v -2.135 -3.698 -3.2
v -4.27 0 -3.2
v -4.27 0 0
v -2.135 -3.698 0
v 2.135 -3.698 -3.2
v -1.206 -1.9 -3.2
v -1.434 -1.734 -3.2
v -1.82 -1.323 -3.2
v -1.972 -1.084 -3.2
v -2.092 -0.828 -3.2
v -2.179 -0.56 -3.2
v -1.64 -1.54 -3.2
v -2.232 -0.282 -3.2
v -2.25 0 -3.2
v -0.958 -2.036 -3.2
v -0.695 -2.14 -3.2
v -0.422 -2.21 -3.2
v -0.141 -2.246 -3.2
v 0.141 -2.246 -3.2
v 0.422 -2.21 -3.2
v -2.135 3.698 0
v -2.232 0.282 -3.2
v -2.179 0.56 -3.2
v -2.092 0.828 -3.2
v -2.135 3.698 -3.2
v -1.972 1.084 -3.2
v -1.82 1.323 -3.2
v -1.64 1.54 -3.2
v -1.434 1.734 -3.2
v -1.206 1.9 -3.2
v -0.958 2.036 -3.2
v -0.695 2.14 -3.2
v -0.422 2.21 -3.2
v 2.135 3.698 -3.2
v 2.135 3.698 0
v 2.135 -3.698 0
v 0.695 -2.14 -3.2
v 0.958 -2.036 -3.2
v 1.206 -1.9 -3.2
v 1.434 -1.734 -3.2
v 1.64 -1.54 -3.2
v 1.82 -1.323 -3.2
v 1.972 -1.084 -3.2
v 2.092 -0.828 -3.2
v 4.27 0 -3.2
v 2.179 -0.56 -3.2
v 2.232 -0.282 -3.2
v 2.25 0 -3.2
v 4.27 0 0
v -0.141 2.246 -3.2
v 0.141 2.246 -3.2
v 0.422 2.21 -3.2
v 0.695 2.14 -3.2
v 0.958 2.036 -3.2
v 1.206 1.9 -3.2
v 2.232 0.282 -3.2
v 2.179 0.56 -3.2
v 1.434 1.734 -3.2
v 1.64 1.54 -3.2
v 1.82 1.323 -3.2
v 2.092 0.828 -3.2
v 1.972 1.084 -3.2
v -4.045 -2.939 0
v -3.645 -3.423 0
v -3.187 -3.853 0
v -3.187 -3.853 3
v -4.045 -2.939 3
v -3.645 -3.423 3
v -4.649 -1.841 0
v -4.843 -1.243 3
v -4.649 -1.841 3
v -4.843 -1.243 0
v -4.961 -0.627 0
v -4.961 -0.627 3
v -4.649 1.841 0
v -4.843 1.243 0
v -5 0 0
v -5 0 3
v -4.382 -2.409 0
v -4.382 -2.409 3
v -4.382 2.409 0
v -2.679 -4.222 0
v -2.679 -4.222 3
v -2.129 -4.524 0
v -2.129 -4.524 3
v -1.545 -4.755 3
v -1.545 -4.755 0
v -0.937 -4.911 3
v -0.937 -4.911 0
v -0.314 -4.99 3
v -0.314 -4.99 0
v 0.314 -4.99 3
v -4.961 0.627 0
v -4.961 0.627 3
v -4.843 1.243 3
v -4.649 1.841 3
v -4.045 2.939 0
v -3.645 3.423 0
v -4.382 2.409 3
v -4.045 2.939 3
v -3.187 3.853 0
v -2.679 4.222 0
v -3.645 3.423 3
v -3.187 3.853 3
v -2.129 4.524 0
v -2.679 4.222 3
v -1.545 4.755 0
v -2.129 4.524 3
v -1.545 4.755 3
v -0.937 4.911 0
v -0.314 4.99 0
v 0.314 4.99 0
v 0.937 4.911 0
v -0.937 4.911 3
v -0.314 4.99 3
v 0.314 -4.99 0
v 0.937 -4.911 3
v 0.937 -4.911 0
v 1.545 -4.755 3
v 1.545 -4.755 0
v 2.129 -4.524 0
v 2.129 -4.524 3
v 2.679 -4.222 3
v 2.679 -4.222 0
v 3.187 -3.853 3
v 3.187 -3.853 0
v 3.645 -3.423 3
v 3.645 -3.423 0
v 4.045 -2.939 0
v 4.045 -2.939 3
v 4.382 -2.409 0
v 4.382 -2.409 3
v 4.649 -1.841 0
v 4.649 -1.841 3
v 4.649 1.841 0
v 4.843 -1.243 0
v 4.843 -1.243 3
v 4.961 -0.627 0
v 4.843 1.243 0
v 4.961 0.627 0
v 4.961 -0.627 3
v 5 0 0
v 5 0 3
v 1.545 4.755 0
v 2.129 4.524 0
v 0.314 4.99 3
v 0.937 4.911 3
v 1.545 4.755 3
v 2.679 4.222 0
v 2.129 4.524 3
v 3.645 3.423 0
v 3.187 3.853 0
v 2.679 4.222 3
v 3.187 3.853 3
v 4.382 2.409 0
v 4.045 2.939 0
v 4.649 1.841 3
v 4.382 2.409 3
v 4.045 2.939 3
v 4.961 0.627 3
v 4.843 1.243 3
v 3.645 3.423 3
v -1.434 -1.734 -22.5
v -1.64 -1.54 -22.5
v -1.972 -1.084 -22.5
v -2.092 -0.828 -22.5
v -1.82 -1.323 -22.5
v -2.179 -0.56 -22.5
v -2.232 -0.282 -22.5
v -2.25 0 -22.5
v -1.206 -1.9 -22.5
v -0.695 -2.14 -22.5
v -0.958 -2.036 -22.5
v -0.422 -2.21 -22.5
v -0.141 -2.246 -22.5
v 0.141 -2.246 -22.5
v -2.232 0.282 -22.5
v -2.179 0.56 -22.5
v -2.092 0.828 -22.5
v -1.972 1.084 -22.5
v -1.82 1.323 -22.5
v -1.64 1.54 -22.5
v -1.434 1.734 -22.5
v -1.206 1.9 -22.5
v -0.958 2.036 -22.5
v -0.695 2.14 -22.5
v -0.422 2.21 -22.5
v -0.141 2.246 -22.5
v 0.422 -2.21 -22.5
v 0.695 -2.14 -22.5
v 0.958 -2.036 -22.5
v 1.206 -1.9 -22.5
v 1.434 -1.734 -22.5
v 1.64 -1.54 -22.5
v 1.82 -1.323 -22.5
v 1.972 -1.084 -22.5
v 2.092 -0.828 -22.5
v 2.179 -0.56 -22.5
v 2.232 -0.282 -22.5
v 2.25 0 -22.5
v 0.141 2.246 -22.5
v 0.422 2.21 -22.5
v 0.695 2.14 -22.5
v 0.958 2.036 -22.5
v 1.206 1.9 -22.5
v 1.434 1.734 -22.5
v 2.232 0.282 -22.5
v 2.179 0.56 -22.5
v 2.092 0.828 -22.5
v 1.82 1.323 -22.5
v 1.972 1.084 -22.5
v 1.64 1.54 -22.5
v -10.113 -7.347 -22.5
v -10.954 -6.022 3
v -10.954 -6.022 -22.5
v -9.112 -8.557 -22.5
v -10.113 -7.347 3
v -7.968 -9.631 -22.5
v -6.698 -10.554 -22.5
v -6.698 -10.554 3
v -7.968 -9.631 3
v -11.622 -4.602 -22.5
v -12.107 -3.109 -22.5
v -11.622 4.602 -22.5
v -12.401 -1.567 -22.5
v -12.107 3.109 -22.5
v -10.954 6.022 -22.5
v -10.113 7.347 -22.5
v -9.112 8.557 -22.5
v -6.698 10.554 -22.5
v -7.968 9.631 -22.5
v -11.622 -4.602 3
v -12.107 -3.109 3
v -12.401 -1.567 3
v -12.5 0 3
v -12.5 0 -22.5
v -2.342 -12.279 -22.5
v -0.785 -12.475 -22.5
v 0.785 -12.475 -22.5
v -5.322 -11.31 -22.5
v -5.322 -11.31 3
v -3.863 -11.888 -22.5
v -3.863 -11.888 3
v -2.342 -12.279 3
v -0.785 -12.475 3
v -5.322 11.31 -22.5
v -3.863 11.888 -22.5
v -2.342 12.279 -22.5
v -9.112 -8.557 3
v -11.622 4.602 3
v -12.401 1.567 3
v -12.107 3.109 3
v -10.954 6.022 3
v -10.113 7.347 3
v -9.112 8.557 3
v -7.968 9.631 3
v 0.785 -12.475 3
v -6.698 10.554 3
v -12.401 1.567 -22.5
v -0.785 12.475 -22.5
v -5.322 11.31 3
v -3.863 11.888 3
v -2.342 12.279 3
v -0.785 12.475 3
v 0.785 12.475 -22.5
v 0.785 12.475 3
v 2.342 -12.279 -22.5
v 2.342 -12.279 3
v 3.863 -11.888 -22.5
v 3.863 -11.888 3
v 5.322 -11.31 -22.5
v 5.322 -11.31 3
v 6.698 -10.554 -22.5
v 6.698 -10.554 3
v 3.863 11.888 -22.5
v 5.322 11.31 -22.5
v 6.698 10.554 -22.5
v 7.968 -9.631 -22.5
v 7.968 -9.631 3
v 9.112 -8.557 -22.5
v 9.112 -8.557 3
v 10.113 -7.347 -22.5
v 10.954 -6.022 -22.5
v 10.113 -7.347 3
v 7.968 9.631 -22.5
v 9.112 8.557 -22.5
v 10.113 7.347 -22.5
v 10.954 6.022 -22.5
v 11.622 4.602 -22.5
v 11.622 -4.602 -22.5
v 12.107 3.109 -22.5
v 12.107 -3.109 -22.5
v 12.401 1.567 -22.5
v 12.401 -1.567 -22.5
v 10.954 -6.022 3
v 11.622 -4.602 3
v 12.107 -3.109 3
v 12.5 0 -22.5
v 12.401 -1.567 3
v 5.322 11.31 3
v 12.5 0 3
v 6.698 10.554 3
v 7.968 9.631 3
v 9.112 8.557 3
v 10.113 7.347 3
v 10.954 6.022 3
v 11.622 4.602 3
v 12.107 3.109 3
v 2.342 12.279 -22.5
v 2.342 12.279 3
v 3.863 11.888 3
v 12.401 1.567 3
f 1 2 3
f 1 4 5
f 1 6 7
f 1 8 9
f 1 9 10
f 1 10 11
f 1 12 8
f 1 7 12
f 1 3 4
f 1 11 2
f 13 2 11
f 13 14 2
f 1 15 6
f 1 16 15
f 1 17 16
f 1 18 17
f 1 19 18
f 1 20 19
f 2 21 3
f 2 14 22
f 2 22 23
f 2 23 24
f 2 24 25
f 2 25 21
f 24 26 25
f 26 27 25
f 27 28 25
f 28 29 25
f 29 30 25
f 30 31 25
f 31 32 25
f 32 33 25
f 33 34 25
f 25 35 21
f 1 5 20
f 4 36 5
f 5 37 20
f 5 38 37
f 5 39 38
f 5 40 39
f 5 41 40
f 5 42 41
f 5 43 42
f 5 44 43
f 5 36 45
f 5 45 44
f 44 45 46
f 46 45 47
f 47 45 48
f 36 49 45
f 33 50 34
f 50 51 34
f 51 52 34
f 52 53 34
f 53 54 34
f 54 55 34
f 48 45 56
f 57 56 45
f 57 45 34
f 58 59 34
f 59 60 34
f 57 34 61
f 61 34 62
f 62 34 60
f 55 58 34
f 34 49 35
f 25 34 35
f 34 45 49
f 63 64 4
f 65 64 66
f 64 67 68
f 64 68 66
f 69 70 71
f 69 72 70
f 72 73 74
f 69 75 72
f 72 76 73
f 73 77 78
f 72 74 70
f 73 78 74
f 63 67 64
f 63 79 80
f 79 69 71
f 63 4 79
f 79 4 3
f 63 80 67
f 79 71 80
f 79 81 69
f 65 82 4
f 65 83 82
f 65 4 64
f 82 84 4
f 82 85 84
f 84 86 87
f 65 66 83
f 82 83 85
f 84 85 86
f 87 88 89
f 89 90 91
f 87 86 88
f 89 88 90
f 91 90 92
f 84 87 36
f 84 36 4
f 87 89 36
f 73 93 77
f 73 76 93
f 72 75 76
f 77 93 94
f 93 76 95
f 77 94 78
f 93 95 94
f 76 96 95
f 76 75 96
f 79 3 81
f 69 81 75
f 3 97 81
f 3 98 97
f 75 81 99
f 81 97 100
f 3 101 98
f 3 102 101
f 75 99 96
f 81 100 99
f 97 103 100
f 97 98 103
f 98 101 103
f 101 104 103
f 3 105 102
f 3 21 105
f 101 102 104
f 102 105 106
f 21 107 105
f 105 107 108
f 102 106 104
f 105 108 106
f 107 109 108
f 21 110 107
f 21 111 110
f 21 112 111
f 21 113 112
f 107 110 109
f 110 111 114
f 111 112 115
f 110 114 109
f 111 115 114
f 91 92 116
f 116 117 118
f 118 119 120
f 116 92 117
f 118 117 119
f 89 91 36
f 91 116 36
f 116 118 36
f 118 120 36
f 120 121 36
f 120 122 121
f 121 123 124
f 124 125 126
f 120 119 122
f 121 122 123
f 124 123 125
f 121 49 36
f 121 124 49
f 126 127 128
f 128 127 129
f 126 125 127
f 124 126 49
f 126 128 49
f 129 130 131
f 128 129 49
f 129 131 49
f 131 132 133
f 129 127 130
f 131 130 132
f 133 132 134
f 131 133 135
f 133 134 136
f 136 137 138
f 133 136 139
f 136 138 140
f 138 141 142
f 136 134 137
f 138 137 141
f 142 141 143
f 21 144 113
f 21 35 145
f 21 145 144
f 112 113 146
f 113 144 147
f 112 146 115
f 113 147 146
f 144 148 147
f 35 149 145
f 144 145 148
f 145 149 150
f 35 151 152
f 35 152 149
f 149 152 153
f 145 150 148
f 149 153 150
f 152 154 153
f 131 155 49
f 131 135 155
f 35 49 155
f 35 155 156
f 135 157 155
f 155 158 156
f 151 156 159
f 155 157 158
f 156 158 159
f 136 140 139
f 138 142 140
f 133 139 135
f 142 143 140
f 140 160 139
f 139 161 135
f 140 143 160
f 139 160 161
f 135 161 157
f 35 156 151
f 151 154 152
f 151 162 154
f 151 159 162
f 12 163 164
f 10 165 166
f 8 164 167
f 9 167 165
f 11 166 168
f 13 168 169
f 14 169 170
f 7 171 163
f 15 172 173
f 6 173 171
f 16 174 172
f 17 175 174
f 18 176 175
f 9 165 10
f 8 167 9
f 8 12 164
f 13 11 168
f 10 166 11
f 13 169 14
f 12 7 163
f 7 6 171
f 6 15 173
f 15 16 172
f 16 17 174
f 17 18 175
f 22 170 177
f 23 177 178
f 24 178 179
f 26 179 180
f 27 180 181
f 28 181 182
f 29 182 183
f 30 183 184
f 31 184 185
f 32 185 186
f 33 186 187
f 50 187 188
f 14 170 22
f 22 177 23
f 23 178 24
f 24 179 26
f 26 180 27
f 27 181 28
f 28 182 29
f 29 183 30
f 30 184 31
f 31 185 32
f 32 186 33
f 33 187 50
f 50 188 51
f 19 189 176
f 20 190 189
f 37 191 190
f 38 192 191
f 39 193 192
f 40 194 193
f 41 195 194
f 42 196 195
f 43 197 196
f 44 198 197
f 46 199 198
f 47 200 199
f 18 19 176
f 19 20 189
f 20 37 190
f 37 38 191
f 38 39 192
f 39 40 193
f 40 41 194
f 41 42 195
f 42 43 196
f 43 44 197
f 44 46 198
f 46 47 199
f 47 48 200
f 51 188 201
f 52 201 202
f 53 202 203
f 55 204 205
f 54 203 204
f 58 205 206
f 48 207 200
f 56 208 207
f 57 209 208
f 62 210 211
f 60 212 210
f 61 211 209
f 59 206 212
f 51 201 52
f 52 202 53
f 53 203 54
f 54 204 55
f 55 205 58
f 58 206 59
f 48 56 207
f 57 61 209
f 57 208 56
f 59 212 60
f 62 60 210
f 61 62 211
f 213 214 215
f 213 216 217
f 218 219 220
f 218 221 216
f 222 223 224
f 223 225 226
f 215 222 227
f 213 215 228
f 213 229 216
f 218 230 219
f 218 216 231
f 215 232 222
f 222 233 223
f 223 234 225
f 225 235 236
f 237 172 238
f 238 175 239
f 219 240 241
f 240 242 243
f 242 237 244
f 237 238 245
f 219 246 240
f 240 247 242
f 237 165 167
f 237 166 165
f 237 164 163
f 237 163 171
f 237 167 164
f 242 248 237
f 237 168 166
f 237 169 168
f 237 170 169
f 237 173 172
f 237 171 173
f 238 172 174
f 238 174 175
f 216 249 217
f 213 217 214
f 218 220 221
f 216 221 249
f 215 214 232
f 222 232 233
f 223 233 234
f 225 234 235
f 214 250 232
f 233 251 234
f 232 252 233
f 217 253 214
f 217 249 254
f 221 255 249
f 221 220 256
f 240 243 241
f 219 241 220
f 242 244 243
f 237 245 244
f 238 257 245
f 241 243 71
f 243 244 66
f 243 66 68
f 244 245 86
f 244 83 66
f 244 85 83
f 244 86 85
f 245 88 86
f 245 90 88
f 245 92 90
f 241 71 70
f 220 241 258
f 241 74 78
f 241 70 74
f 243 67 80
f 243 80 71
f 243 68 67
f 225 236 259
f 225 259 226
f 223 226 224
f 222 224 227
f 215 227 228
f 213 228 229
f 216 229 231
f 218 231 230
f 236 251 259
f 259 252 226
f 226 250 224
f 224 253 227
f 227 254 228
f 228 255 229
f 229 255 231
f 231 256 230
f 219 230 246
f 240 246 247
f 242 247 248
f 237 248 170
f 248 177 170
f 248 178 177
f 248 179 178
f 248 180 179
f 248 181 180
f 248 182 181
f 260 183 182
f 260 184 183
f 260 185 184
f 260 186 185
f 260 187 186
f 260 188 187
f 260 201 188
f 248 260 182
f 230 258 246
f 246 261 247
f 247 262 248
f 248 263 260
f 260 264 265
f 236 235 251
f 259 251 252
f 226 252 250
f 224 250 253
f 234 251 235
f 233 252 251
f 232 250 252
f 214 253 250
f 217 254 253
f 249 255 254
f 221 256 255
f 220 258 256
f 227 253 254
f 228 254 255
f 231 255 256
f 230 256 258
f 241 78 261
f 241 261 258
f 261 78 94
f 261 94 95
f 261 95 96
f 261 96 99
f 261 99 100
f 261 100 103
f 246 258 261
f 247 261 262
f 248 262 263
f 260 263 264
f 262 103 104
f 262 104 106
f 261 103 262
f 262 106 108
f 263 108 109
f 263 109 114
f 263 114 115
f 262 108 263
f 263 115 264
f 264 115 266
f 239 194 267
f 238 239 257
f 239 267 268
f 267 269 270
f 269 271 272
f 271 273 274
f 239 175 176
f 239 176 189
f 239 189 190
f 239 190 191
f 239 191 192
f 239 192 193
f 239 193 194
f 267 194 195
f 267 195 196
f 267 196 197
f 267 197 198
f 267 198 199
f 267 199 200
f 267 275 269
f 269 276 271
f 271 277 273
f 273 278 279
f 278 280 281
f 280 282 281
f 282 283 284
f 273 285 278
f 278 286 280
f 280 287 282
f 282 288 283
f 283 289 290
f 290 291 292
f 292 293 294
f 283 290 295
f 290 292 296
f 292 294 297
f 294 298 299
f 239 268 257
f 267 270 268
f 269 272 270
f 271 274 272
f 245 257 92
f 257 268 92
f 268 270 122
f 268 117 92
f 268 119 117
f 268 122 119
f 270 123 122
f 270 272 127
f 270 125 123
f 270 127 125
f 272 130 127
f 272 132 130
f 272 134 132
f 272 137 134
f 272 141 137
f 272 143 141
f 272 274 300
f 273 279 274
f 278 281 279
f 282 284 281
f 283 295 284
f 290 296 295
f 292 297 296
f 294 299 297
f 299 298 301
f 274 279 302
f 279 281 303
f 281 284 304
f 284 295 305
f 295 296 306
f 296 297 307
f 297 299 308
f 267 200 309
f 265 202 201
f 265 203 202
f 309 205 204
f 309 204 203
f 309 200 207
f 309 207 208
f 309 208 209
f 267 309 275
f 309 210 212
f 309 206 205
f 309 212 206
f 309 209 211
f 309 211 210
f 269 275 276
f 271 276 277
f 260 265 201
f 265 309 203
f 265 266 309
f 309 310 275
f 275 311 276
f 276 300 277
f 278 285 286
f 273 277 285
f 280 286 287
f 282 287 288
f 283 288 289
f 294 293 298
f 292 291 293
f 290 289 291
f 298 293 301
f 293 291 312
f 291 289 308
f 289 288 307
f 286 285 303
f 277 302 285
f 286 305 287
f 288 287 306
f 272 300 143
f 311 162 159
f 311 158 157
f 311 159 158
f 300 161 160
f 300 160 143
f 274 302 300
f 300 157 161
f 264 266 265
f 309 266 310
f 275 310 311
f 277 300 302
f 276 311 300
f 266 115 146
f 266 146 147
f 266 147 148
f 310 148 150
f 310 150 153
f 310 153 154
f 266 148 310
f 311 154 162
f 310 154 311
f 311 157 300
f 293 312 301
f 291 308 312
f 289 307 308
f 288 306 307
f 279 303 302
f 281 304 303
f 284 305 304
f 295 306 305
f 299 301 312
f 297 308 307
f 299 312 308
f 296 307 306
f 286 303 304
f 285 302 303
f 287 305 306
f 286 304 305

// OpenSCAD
$fn = 50;

difference() {
	union() {
		translate(v = [0, 0, -22.5]) {
			cylinder(h = 25.5, r = 12.5);
		}
	}
	union() {
		translate(v = [0, 0, 0]) {
			rotate(a = [0, 0, 0]) {
				difference() {
					union() {
						translate(v = [0, 0, -3.2]) {
							linear_extrude(height = 3.2) {
								polygon(points = [[4.2698, 0.0], [2.1349000000000005, 3.697755269078796], [-2.134899999999999, 3.6977552690787965], [-4.2698, 5.228996902999369e-16], [-2.134900000000002, -3.6977552690787956], [2.1348999999999974, -3.697755269078798]]);
							}
						}
					}
					union();
				}
			}
		}
		#cylinder(h = 3, r = 5.0);
		#translate(v = [0, 0, -100.0]) {
			cylinder(h = 200, r = 2.25);
		}
	}
}
